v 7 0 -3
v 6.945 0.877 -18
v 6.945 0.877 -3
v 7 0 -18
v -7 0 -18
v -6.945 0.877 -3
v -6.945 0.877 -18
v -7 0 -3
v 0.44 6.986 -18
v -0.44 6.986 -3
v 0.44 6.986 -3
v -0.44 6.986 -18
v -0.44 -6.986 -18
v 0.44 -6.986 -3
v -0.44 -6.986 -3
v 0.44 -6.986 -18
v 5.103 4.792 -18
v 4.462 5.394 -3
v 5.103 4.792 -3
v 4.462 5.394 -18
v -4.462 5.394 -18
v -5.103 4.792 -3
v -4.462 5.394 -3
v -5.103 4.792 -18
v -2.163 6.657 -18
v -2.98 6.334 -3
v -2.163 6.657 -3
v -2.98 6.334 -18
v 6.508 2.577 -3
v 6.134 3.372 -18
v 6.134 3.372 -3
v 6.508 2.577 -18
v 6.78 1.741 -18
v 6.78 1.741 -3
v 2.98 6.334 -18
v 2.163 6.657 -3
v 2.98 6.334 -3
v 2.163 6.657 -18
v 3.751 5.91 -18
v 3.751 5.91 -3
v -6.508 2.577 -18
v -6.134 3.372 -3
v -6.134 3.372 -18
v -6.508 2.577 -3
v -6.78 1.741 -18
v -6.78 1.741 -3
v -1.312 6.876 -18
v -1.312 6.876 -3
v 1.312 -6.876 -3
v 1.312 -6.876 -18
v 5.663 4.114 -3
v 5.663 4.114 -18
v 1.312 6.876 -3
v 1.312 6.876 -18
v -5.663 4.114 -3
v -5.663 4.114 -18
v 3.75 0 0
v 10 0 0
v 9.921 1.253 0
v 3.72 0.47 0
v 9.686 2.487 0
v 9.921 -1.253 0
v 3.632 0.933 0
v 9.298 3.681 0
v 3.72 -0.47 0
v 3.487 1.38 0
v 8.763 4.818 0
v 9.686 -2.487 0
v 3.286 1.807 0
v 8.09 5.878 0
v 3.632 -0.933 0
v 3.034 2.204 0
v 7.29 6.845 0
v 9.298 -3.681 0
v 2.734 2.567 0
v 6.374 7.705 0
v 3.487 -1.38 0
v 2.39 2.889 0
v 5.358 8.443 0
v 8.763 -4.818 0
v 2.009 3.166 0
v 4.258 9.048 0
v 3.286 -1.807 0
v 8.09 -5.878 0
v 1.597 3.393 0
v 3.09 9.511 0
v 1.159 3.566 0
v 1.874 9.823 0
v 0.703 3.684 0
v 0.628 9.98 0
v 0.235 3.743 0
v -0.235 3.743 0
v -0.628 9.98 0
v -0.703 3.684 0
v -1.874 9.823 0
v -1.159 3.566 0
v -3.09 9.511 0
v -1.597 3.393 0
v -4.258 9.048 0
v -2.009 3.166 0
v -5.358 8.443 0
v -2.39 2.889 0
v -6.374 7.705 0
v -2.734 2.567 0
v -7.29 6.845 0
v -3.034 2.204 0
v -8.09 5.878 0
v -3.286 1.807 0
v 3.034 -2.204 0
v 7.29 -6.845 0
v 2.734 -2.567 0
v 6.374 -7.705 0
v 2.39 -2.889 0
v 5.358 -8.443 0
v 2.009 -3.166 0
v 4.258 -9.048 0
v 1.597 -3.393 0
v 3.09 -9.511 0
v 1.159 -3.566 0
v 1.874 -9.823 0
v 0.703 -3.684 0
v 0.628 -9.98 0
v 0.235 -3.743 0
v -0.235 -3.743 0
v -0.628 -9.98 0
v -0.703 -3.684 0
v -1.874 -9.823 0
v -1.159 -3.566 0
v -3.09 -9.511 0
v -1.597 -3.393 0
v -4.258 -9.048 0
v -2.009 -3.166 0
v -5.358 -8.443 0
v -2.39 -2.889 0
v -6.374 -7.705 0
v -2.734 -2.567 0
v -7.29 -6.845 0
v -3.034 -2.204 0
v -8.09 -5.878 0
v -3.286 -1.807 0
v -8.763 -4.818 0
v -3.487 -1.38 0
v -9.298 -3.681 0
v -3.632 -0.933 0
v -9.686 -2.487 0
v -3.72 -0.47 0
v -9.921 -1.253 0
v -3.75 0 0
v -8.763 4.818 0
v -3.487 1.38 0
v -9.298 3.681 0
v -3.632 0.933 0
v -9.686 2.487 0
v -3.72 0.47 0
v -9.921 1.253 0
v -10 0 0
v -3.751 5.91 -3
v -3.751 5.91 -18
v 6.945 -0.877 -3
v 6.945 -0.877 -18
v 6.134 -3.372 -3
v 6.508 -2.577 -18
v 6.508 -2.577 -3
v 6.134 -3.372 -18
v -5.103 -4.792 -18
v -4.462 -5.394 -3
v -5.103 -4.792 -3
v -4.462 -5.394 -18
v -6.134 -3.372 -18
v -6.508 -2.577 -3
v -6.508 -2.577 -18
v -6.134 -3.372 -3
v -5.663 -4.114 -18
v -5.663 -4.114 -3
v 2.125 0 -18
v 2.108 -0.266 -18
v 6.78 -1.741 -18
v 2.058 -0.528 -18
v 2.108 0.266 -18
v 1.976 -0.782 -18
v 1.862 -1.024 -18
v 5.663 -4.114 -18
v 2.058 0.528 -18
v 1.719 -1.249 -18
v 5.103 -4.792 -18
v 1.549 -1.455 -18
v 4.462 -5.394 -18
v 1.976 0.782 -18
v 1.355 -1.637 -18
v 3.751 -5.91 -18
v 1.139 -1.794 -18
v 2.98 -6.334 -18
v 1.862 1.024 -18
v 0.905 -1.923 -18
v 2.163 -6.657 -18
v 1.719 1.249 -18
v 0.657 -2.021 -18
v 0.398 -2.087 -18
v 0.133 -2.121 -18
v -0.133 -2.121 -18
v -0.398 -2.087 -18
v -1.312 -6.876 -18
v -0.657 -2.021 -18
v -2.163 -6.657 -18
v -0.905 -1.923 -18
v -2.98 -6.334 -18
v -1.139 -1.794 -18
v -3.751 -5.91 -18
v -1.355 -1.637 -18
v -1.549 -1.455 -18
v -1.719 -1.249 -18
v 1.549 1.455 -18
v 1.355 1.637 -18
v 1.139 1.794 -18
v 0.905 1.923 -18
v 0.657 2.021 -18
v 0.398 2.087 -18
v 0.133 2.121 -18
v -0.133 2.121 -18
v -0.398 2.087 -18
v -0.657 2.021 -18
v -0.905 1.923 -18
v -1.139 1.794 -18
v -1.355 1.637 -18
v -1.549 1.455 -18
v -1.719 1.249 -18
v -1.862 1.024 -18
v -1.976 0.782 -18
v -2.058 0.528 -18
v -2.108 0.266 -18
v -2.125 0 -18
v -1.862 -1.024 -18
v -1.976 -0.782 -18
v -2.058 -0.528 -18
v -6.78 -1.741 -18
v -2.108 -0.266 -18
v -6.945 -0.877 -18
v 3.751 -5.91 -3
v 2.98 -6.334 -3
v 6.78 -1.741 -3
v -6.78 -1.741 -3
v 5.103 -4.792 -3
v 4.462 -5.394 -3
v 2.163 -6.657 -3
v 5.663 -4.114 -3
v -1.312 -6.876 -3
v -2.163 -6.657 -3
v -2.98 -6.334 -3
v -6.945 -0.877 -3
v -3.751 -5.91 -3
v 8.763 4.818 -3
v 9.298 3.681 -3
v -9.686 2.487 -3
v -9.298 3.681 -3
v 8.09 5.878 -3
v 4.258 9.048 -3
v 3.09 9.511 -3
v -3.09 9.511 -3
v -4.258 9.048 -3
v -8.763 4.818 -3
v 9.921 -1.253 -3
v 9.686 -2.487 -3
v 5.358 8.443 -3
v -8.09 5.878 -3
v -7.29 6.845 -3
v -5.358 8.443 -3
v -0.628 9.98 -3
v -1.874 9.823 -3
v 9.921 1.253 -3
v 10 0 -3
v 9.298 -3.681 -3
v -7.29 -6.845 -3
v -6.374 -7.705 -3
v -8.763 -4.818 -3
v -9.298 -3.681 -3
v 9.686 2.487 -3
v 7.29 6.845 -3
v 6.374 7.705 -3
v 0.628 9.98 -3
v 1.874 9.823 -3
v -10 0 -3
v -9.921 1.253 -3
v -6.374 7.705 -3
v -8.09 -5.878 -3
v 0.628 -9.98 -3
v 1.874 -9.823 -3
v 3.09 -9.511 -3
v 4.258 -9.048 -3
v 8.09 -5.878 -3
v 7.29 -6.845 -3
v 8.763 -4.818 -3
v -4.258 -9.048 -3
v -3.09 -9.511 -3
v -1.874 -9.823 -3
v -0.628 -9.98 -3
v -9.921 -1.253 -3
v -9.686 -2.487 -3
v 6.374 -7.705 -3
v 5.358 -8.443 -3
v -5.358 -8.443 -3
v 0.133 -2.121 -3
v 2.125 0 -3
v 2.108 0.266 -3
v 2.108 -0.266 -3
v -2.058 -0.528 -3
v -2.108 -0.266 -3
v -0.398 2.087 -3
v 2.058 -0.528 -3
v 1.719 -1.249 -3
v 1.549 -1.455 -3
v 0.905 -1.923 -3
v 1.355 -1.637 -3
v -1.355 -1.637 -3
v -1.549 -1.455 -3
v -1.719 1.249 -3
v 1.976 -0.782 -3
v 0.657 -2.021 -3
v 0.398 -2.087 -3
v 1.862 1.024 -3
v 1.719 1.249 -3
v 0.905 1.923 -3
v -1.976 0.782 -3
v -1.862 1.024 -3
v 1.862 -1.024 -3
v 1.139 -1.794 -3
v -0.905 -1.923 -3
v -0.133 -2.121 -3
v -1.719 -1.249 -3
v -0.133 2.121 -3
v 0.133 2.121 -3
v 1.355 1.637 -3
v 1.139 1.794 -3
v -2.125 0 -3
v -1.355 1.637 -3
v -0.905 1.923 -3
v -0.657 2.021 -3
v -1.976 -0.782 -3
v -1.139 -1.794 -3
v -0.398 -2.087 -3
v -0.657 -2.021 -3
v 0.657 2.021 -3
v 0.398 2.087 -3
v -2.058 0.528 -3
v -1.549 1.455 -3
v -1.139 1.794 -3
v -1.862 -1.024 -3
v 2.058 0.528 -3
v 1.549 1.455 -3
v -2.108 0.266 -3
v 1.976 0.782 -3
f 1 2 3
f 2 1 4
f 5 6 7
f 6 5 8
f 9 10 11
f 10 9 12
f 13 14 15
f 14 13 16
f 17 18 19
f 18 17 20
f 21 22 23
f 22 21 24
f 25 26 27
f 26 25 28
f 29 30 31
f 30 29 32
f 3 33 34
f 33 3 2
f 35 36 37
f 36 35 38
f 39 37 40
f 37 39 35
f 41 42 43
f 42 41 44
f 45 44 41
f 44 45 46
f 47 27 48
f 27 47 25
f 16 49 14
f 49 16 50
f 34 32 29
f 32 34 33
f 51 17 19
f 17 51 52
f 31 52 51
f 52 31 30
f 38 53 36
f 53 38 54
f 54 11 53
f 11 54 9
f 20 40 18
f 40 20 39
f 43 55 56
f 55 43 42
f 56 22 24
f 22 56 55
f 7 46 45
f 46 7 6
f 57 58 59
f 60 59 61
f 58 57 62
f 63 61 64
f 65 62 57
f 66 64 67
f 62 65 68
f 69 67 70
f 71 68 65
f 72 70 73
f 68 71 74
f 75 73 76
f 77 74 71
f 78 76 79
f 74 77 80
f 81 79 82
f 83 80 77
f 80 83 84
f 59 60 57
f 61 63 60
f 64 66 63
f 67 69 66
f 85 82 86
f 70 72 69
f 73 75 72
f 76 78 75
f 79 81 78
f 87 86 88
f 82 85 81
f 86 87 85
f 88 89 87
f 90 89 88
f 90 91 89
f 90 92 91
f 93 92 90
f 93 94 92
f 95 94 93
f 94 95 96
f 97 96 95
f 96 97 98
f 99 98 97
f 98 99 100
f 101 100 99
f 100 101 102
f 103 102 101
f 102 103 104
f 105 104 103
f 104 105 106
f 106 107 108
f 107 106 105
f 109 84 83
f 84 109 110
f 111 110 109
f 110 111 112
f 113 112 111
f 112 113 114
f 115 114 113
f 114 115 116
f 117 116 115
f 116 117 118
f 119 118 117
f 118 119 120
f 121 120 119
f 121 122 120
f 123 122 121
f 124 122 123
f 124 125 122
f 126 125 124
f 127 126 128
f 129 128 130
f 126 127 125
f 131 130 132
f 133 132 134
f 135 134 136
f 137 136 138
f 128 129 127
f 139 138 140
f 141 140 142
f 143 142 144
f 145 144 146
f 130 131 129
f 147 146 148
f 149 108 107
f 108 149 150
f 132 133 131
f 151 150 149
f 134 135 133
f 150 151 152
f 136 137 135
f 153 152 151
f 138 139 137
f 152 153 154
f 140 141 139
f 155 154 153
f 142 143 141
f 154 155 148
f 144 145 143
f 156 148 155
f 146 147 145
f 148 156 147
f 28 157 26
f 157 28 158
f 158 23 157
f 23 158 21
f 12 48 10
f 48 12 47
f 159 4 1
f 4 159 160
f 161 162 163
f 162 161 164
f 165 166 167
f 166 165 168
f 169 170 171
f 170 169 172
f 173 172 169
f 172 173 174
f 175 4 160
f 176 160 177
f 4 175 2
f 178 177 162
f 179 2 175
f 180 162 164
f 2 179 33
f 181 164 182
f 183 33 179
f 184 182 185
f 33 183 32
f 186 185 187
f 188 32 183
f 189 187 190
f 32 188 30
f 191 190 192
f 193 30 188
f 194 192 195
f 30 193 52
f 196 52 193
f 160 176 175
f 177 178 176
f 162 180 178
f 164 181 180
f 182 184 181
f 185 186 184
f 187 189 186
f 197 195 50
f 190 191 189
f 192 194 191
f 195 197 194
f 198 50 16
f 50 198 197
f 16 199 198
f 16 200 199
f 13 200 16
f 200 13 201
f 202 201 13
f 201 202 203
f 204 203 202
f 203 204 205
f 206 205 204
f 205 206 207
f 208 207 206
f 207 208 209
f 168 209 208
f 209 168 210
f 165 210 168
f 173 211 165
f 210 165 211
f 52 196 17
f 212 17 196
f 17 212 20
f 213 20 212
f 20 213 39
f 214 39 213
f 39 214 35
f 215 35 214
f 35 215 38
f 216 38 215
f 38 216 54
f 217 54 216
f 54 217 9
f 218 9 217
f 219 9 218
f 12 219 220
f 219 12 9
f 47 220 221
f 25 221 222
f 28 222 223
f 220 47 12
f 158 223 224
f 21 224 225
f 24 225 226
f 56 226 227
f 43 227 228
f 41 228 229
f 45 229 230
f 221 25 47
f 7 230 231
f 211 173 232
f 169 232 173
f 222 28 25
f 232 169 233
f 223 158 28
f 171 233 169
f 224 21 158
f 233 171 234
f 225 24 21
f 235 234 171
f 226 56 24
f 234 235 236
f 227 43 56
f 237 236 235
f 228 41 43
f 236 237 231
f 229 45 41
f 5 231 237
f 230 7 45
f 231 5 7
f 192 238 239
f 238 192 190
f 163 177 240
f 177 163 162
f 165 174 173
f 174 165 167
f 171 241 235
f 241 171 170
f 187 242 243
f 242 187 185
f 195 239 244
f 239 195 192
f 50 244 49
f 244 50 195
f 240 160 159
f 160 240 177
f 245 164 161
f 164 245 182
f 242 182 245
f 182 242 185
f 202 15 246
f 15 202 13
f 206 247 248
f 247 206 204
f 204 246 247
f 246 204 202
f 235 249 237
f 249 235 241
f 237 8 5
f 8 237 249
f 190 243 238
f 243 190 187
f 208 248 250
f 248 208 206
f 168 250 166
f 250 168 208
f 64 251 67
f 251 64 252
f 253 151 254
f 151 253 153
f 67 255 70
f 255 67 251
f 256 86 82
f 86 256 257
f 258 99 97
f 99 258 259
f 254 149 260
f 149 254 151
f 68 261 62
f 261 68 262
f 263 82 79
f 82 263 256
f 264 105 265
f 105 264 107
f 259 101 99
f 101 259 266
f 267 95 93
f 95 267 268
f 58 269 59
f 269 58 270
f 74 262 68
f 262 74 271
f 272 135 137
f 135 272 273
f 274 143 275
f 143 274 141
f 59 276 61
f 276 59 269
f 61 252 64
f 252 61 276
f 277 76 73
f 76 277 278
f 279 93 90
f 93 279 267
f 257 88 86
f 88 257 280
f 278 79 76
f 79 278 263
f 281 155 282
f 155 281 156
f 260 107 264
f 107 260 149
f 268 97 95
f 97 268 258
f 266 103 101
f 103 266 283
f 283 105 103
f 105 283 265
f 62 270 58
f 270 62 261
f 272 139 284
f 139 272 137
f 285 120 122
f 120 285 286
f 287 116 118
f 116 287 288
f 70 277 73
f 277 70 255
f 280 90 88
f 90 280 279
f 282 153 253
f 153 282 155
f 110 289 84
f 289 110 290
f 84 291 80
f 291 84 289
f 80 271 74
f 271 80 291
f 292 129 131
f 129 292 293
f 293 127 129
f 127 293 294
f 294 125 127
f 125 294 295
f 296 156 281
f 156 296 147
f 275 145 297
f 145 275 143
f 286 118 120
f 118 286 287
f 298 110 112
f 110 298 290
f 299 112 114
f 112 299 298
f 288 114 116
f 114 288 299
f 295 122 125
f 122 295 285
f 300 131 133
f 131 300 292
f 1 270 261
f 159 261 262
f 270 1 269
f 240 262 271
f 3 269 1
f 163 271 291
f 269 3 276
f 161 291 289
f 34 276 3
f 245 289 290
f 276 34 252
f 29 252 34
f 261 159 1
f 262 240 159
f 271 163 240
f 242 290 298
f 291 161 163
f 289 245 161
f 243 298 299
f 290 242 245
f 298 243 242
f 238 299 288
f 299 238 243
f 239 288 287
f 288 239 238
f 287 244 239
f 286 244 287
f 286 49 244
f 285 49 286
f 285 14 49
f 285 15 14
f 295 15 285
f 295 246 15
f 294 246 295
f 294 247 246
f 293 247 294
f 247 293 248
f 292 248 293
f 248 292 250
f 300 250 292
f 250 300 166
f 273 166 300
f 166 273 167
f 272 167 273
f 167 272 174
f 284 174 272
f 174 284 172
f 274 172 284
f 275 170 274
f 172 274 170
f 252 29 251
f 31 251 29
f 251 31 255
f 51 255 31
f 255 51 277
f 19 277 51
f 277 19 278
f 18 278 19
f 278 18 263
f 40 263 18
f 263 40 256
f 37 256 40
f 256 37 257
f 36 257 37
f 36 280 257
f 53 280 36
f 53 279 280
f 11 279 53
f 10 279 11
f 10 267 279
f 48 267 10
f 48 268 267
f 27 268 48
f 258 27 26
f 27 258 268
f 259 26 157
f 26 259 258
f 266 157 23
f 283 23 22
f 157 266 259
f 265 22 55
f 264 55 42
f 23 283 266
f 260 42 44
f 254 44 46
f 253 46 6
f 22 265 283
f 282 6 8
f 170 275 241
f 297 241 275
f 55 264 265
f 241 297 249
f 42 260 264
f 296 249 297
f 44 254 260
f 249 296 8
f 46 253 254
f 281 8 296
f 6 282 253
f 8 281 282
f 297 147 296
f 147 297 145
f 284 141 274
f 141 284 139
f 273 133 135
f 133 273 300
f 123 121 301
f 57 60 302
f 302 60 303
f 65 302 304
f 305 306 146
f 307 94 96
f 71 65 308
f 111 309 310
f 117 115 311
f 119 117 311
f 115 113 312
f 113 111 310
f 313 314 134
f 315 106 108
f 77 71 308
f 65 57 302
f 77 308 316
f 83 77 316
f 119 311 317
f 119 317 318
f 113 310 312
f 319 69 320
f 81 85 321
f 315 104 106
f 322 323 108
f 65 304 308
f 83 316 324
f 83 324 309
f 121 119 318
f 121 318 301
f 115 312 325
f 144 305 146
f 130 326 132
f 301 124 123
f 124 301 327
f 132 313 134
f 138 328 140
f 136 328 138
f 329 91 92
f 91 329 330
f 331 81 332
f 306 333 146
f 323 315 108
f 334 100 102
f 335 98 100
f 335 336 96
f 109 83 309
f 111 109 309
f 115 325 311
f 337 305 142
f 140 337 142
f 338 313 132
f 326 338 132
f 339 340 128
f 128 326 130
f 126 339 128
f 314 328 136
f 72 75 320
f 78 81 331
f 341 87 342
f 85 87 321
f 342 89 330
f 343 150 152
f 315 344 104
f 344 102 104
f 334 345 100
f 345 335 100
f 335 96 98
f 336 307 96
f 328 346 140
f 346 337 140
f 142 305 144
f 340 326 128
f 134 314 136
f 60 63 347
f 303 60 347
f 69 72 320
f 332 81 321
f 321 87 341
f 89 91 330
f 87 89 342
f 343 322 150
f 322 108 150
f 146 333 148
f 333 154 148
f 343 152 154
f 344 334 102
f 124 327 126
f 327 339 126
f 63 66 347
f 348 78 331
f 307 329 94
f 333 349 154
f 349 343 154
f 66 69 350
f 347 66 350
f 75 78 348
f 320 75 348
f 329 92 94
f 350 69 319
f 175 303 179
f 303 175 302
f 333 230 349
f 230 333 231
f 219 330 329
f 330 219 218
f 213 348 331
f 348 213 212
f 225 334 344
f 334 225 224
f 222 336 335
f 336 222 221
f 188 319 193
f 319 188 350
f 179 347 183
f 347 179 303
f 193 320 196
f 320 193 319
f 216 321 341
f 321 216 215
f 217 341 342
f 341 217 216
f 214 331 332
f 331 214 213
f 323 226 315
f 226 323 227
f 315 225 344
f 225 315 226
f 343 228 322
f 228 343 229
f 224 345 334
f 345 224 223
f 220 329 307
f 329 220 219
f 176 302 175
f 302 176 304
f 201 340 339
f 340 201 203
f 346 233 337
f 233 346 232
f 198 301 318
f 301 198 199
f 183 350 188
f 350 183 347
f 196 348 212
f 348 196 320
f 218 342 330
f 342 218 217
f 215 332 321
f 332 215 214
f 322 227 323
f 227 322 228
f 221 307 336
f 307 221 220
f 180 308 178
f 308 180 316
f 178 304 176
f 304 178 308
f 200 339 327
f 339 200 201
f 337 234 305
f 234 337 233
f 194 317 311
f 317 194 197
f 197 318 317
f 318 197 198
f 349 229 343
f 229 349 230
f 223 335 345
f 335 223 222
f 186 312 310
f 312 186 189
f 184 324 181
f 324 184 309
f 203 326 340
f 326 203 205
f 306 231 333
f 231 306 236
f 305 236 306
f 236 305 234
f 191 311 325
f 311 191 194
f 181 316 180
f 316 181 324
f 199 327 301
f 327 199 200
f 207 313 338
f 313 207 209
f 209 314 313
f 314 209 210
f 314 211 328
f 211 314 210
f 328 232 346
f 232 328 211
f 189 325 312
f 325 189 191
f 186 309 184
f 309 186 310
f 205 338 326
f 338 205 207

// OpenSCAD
$fn = 50;


difference() {
	union() {
		translate(v = [0, 0, -18.0000000000]) {
			cylinder(h = 18, r = 7.0000000000);
		}
		translate(v = [0, 0, -3.0000000000]) {
			cylinder(h = 3, r = 10.0000000000);
		}
	}
	union() {
		translate(v = [0, 0, 0]) {
			rotate(a = [0, 0, 0]) {
				difference() {
					union() {
						#translate(v = [0, 0, -18.0000000000]) {
							cylinder(h = 18, r = 2.0000000000);
						}
						#translate(v = [0, 0, -3]) {
							cylinder(h = 3, r = 7.0000000000, r1 = 2.1250000000, r2 = 3.7500000000);
						}
						#translate(v = [0, 0, -18.0000000000]) {
							cylinder(h = 18, r = 2.1250000000);
						}
						#translate(v = [0, 0, -18.0000000000]) {
							cylinder(h = 18, r = 2.0000000000);
						}
					}
					union();
				}
			}
		}
	}
}
